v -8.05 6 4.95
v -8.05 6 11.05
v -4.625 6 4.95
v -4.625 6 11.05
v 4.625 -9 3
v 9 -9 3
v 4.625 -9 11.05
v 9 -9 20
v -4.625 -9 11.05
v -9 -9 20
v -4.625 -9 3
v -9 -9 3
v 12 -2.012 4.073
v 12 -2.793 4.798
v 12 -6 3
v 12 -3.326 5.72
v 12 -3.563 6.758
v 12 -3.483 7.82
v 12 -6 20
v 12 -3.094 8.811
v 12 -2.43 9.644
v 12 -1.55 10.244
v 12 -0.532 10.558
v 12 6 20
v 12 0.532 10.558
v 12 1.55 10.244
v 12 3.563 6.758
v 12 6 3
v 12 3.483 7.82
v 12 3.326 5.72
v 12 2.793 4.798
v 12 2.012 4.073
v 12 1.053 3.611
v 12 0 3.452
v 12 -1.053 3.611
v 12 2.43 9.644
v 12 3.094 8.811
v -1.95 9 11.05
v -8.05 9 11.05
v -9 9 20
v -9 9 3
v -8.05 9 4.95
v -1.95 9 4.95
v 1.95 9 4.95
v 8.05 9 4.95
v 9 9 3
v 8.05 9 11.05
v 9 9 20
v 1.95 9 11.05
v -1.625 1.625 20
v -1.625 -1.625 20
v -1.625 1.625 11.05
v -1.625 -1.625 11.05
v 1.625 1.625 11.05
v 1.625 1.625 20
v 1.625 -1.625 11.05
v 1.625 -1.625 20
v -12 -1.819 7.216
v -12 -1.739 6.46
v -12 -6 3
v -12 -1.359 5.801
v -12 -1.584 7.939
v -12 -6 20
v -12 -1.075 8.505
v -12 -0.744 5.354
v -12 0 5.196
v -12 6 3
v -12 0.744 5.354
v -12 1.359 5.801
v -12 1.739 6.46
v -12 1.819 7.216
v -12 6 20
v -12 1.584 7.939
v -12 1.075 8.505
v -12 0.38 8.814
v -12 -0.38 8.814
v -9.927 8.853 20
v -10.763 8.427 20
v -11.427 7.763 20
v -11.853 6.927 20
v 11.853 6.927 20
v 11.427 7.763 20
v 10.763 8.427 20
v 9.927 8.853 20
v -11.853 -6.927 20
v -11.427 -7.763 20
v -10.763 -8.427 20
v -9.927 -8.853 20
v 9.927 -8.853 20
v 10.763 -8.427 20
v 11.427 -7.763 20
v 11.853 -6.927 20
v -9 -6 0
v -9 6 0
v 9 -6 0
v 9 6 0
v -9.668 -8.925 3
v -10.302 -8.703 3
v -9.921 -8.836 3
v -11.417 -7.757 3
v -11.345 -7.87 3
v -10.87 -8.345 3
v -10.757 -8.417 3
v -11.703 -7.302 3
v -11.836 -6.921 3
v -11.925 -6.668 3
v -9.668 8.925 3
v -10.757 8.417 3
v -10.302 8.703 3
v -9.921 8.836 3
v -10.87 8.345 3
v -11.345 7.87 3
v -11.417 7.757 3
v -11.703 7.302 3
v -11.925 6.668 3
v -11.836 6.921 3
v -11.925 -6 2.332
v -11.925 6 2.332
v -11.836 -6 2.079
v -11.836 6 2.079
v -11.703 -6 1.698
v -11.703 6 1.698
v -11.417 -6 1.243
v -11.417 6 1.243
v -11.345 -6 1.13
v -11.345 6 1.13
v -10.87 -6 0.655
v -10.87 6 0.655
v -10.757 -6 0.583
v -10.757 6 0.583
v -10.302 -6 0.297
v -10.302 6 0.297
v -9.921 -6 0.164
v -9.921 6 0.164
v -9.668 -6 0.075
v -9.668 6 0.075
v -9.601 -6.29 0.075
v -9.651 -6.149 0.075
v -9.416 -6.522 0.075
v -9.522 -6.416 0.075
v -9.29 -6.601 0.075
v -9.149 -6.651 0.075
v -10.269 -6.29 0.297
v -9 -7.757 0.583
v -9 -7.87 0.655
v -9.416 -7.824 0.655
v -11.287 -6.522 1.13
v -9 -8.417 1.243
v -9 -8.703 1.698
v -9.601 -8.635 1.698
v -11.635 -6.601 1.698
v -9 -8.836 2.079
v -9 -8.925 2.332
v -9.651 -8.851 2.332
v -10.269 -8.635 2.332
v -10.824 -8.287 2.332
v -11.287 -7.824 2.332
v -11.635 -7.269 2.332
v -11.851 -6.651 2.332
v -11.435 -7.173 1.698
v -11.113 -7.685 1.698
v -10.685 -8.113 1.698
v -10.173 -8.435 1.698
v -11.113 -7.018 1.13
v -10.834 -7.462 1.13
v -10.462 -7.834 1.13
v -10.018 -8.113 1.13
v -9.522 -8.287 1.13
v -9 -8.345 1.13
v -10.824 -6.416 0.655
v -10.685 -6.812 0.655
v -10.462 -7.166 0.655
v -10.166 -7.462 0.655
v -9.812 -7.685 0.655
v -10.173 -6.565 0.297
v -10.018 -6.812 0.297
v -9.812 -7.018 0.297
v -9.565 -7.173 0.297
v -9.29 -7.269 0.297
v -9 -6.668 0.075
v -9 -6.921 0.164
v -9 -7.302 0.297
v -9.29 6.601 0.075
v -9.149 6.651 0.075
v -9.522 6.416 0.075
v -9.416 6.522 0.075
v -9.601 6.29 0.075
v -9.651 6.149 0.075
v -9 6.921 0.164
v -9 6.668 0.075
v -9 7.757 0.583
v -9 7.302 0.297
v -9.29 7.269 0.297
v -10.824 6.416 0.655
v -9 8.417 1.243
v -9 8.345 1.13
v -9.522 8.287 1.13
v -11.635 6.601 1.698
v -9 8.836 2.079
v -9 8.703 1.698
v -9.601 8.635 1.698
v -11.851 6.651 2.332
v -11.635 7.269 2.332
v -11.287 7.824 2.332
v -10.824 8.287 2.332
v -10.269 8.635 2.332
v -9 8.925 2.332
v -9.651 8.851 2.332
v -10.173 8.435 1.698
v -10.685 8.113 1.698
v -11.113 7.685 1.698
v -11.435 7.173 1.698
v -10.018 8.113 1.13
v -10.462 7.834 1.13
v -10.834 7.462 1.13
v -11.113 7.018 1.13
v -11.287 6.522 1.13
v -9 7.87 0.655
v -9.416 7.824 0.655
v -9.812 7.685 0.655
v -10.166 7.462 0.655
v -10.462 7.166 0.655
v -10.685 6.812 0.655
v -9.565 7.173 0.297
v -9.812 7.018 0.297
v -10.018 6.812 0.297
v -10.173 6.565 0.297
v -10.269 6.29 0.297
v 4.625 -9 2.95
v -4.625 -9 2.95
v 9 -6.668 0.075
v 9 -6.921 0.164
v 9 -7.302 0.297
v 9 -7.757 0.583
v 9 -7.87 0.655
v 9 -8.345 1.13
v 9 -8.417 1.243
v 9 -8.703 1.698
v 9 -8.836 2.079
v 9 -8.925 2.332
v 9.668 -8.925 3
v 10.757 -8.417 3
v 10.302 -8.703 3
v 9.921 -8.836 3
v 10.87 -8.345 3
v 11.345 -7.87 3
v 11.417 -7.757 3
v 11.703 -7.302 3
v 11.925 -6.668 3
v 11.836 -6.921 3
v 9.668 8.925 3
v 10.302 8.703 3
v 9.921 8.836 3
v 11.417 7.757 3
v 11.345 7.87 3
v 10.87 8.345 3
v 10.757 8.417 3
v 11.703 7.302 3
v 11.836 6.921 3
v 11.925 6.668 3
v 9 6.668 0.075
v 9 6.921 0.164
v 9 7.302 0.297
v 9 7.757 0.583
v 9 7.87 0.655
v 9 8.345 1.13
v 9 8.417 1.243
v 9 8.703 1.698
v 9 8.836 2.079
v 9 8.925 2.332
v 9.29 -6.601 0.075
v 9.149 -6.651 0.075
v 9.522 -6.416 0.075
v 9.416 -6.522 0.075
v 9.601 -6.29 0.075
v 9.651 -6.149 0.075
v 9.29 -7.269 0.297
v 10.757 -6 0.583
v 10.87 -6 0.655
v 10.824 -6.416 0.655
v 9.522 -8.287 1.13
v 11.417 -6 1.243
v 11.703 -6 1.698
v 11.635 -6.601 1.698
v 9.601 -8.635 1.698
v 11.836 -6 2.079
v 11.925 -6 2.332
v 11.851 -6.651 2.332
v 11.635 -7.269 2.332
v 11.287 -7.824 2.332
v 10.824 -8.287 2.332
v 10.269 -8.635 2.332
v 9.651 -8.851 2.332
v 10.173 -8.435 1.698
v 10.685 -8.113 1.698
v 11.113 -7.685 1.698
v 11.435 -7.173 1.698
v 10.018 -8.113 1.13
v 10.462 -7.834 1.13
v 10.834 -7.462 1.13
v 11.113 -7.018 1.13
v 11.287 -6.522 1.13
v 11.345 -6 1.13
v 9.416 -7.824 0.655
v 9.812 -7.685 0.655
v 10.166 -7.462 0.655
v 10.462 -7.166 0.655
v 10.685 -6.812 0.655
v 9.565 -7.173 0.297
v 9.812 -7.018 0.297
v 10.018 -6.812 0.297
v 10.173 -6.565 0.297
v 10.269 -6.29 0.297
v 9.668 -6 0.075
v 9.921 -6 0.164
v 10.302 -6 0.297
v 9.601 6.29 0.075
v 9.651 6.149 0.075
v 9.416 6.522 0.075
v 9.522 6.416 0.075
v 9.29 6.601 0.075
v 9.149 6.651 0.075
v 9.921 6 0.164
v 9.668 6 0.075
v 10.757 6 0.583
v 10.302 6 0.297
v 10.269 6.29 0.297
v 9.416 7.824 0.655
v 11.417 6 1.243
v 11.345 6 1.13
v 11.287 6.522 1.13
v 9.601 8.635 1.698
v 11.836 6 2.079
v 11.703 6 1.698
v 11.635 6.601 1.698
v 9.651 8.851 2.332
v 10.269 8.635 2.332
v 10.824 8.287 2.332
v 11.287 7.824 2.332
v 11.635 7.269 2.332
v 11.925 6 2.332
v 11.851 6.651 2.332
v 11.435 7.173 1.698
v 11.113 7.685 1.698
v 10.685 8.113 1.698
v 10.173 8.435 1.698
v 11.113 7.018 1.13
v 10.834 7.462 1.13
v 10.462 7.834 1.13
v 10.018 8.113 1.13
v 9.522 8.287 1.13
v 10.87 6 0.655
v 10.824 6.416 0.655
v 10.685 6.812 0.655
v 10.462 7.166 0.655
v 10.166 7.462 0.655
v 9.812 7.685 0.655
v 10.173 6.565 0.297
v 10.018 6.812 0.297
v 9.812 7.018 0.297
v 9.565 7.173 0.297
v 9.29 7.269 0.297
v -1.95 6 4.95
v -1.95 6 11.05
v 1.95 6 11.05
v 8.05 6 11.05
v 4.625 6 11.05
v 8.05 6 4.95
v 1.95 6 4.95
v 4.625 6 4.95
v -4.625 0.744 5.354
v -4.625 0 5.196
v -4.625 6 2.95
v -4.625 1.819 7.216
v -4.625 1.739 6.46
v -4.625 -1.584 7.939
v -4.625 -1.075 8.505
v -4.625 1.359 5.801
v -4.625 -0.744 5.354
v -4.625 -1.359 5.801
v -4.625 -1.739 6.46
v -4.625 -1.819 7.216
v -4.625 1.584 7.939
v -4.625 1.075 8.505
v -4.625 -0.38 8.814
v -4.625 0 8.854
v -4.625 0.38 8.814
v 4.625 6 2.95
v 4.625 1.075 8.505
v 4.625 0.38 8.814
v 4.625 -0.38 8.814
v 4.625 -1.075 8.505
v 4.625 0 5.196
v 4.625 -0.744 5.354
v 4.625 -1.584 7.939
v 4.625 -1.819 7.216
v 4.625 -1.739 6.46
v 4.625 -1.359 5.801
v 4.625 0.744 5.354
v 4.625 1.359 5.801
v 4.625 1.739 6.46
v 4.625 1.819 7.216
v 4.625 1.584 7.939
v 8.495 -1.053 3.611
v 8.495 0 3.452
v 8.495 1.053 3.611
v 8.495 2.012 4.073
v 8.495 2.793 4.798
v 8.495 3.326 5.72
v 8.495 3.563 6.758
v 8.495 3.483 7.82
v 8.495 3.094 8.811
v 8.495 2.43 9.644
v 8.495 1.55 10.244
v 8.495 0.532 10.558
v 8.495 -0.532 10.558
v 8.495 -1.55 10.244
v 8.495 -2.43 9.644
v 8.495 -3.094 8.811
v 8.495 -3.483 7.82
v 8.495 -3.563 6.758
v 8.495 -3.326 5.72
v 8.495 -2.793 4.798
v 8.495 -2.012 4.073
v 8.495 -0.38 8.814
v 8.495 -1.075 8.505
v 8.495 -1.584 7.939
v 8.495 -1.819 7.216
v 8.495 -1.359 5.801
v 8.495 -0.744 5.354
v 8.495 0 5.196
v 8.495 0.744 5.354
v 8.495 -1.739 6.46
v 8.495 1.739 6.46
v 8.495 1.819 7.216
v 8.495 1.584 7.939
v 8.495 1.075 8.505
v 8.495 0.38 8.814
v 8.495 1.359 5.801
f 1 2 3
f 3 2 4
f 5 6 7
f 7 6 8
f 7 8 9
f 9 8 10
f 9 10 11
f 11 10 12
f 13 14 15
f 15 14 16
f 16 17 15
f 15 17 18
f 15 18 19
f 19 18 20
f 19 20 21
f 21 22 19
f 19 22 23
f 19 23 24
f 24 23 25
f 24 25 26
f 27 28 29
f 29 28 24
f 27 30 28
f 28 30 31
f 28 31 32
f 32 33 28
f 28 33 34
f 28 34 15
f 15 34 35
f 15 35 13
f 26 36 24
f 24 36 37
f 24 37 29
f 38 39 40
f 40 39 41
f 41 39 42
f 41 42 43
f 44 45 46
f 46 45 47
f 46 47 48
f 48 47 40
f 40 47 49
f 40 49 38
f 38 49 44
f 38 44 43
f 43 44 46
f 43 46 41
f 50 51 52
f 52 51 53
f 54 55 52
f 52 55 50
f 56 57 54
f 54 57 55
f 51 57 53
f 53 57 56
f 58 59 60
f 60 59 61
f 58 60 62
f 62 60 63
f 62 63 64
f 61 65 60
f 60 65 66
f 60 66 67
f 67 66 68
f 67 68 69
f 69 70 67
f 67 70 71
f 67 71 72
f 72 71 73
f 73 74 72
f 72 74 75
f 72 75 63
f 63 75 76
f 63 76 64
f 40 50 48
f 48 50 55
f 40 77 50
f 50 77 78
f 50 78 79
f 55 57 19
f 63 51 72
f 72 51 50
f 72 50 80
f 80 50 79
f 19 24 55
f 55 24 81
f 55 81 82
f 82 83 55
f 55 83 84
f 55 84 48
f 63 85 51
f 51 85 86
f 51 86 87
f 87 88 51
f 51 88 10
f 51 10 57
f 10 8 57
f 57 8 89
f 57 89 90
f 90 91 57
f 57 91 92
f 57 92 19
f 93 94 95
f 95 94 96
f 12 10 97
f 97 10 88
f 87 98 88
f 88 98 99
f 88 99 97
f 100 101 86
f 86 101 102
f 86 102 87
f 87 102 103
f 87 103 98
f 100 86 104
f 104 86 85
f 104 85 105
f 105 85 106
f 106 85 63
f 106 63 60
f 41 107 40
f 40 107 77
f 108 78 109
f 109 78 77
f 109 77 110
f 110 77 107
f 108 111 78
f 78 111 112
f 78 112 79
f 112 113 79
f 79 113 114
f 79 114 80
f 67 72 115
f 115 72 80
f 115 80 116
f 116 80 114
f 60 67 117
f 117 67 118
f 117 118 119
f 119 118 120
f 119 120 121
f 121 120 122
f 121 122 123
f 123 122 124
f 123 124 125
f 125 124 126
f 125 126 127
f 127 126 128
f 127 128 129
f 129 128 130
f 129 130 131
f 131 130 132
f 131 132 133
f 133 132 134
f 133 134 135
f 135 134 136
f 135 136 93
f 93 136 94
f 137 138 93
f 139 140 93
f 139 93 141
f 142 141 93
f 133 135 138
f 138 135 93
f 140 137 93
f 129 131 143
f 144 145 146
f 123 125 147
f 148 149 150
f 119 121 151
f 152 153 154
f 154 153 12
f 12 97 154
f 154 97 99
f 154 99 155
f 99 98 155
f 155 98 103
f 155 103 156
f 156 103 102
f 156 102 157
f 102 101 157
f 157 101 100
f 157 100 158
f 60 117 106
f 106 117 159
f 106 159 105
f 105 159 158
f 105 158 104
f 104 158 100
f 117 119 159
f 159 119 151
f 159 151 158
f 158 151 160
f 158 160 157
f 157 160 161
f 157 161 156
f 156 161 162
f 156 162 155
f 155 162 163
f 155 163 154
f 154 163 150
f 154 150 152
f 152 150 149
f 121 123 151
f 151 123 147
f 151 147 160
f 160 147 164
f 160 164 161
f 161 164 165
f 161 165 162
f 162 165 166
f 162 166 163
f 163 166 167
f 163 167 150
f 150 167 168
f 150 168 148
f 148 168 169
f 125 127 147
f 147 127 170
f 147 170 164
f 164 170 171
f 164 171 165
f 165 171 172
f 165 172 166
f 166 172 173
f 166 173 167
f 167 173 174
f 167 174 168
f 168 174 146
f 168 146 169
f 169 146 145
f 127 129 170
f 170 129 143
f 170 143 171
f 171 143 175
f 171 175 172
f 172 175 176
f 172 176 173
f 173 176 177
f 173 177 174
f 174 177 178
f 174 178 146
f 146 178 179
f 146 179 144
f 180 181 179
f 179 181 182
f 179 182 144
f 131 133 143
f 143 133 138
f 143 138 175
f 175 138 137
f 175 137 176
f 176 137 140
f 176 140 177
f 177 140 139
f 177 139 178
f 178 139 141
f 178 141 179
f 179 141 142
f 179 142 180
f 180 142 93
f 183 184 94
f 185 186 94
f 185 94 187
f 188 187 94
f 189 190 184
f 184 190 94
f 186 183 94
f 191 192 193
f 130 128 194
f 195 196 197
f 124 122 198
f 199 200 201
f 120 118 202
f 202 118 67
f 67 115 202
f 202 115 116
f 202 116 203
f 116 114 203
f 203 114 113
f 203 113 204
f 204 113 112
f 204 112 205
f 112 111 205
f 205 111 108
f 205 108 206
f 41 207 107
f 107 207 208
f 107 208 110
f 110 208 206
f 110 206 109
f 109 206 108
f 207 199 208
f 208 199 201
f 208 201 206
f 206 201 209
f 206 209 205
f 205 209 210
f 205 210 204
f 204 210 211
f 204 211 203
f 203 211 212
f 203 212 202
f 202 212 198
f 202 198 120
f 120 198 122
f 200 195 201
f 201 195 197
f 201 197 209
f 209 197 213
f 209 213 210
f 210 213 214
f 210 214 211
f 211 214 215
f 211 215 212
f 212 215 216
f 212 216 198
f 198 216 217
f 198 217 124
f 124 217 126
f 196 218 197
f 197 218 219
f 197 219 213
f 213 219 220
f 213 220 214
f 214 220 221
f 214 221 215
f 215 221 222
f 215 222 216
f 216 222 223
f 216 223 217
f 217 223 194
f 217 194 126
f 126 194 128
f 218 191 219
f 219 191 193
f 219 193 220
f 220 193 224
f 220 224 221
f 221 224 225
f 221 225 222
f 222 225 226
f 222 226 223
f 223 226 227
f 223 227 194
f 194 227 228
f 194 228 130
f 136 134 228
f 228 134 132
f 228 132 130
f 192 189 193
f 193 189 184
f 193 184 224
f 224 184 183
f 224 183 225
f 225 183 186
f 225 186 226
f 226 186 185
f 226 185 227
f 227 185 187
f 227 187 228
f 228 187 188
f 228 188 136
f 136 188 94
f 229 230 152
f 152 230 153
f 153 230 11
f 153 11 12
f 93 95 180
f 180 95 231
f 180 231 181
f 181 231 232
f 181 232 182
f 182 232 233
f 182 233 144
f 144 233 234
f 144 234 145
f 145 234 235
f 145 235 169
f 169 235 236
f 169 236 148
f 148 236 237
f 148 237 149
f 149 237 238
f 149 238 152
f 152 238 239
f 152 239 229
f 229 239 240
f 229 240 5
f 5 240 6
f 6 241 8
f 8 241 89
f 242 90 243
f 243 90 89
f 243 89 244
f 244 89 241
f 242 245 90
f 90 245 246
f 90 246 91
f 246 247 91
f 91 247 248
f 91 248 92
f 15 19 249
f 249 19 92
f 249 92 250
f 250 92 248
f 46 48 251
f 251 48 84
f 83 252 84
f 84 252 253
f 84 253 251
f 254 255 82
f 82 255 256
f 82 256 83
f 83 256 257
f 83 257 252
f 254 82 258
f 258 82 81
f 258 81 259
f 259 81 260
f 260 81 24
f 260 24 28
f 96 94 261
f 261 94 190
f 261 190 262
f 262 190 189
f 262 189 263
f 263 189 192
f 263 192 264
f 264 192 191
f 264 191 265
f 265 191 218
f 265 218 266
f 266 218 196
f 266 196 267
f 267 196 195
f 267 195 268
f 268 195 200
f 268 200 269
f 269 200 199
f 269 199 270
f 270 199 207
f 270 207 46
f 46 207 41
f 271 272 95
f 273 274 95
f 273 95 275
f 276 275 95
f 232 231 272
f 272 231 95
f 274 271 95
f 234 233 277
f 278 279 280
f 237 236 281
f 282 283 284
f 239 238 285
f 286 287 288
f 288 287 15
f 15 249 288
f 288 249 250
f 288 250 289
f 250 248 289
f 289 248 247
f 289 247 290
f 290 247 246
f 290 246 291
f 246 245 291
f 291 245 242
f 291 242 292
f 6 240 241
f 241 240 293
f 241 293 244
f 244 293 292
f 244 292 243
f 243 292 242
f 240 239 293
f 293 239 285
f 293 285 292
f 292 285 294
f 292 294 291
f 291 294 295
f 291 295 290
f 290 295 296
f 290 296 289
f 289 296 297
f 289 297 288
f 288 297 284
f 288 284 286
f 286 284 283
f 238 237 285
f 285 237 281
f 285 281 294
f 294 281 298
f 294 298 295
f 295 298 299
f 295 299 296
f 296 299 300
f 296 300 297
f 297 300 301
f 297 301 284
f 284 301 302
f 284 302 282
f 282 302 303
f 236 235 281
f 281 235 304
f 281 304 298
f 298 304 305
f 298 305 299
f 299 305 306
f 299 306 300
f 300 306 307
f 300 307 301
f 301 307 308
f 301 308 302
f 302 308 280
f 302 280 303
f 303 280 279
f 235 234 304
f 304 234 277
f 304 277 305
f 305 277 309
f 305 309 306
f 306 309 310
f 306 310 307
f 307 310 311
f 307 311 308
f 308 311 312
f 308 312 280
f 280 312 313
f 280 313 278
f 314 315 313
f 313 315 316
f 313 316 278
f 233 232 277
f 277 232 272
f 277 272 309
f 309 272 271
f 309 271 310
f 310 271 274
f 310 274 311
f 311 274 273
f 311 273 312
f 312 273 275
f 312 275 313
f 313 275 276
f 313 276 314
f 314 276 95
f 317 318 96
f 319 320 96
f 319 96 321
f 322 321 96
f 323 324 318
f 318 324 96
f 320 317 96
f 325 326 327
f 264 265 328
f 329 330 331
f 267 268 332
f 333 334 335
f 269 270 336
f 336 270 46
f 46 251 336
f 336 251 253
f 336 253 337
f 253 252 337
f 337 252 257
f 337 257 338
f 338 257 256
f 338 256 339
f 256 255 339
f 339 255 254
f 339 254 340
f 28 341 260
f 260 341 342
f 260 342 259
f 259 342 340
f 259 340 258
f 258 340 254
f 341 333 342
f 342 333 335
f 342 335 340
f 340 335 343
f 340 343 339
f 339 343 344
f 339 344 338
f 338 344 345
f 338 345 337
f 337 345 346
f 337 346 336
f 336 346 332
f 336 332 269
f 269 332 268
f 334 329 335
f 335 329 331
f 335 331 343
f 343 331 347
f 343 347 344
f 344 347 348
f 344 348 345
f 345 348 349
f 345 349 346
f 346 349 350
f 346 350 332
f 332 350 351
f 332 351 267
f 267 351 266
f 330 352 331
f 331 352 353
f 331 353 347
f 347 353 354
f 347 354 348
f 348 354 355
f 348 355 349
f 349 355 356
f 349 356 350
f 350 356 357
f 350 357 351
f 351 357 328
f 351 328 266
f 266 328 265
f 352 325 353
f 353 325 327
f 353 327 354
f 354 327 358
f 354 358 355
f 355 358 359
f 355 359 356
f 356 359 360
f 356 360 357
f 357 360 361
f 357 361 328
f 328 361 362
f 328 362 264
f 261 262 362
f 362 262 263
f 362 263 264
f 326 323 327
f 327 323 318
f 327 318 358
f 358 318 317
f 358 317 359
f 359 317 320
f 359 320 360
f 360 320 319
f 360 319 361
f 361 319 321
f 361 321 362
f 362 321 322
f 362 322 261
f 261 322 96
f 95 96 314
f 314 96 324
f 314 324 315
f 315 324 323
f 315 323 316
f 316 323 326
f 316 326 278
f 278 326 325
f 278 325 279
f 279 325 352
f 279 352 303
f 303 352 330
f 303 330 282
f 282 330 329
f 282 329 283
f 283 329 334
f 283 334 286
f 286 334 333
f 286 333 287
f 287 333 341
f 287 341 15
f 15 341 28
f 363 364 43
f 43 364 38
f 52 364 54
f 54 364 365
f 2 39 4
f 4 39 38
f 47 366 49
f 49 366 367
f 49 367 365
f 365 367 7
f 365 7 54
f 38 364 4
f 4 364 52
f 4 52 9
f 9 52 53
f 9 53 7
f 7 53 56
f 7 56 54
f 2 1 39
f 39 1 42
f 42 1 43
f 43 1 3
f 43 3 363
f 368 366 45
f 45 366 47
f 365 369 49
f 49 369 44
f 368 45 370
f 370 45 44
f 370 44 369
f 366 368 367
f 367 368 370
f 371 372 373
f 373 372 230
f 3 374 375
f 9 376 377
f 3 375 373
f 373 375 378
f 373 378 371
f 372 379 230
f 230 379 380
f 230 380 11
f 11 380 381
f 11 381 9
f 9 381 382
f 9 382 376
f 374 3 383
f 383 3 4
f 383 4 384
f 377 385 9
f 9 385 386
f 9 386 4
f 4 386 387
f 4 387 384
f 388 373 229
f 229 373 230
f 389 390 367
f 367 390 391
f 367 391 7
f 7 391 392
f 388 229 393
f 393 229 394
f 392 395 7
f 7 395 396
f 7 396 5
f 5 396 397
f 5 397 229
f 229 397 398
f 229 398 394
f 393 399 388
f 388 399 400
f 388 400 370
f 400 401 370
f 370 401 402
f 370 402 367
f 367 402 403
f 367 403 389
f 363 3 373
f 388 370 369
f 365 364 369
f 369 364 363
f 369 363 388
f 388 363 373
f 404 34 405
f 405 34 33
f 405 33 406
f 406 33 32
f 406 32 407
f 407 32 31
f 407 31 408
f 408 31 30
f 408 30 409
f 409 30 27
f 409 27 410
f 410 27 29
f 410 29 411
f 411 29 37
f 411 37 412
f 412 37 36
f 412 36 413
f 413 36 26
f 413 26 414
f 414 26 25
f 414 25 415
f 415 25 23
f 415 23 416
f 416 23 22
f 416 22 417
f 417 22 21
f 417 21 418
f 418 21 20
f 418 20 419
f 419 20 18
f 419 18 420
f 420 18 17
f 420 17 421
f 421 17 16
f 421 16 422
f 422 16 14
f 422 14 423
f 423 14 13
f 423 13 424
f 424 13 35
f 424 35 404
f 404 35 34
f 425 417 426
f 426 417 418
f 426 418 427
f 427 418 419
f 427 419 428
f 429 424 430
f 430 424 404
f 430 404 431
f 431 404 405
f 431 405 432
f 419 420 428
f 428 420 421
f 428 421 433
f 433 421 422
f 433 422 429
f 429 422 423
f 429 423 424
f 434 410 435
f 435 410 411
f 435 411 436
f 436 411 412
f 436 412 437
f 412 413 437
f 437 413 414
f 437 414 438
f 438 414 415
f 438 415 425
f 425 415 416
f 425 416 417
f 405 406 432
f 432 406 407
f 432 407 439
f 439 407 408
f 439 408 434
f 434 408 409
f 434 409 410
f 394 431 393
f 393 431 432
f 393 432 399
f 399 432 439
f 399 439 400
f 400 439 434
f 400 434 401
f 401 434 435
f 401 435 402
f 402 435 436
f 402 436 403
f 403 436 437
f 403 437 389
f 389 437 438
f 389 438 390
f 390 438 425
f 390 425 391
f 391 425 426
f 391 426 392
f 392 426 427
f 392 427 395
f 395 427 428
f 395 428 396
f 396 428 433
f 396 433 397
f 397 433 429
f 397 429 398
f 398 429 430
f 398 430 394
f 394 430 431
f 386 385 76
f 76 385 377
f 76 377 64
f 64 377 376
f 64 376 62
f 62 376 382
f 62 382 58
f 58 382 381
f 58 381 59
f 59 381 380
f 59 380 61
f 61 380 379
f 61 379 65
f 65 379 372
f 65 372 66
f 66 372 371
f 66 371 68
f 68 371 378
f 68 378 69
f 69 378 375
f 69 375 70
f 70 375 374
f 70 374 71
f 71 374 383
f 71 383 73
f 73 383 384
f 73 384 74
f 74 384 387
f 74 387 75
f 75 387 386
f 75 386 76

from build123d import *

# Parameters (mm, degrees)
SKETCH1_W                                      = 24
SKETCH1_H                                      = 18
SKETCH1_W_2                                    = 3.25
SKETCH1_H_2                                    = 3.25
BOSS_EXTRUDE1_DEPTH                            = 20
FILLET1_R                                      = 3
SKETCH2_W                                      = 6.1
SKETCH2_H                                      = 6.1
CUT_EXTRUDE1_DEPTH                             = 3
SKETCH3_W                                      = 9.25
SKETCH3_H                                      = 8.1
CUT_EXTRUDE2_DEPTH                             = 28.730849248
SKETCH4_W                                      = 3.25
SKETCH4_H                                      = 3.25
BOSS_EXTRUDE2_DEPTH                            = 2.95
CBORE_FOR_6_SOCKET_HEAD_CAP_SCREW1_D           = 3.6576
CBORE_FOR_6_SOCKET_HEAD_CAP_SCREW1_CBORE_D     = 7.14502
CBORE_FOR_6_SOCKET_HEAD_CAP_SCREW1_CBORE_DEPTH = 3.5052


with BuildPart() as part:
    # Sketch1 → Boss-Extrude1 (new body)
    # profile 1 of 2: a face of its own
    with BuildSketch(Plane.XY):
        Rectangle(SKETCH1_W, SKETCH1_H)
        Rectangle(SKETCH1_W_2, SKETCH1_H_2, mode=Mode.SUBTRACT)
    # profile 2 of 2: a face of its own
    with BuildSketch(Plane.XY):
        Polygon((-1.625, -1.625), (-1.625, 1.625), (-1.625, 4), (-4.8, 4), (-4.8, -4), (-1.625, -4), align=None)
    extrude(amount=BOSS_EXTRUDE1_DEPTH)

    # Fillet1
    fillet1_edges = [part.edges().sort_by_distance(p)[0] for p in [
        (12, 0, 0),
        (0, -9, 0),
        (-12, -9, 10),
        (-12, 9, 10),
        (12, 9, 10),
        (12, -9, 10),
        (-12, 0, 0),
        (0, 9, 0),
    ]]
    fillet(fillet1_edges, radius=FILLET1_R)

    # Sketch2 → Cut-Extrude1 (cut)
    with BuildSketch(Plane(origin=(0, 9, 0), x_dir=(1, 0, 0), z_dir=(0, 1, 0))):
        with Locations((-5, -8)):
            Rectangle(SKETCH2_W, SKETCH2_H)
        with Locations((5, -8)):
            Rectangle(SKETCH2_W, SKETCH2_H)
    extrude(amount=-CUT_EXTRUDE1_DEPTH, mode=Mode.SUBTRACT)

    # Sketch3 → Cut-Extrude2 (cut, through all)
    with BuildSketch(Plane(origin=(0, 6, 0), x_dir=(1, 0, 0), z_dir=(0, 1, 0))):
        with Locations((0, -7)):
            Rectangle(SKETCH3_W, SKETCH3_H)
    extrude(amount=-CUT_EXTRUDE2_DEPTH, mode=Mode.SUBTRACT)

    # Sketch4 → Boss-Extrude2 (add)
    with BuildSketch(Plane(origin=(0, 0, 0), x_dir=(-1, 0, 0), z_dir=(0, 0, -1))):
        Rectangle(SKETCH4_W, SKETCH4_H)
    extrude(amount=-BOSS_EXTRUDE2_DEPTH)

    # CBORE for #6 Socket Head Cap Screw1 (through all)
    with Locations(Plane(origin=(12, 0, 0), x_dir=(0, 0, -1), z_dir=(1, 0, 0))):
        with Locations((-7.025, 0)):
            CounterBoreHole(CBORE_FOR_6_SOCKET_HEAD_CAP_SCREW1_D / 2, CBORE_FOR_6_SOCKET_HEAD_CAP_SCREW1_CBORE_D / 2, CBORE_FOR_6_SOCKET_HEAD_CAP_SCREW1_CBORE_DEPTH)


solid = part.part
